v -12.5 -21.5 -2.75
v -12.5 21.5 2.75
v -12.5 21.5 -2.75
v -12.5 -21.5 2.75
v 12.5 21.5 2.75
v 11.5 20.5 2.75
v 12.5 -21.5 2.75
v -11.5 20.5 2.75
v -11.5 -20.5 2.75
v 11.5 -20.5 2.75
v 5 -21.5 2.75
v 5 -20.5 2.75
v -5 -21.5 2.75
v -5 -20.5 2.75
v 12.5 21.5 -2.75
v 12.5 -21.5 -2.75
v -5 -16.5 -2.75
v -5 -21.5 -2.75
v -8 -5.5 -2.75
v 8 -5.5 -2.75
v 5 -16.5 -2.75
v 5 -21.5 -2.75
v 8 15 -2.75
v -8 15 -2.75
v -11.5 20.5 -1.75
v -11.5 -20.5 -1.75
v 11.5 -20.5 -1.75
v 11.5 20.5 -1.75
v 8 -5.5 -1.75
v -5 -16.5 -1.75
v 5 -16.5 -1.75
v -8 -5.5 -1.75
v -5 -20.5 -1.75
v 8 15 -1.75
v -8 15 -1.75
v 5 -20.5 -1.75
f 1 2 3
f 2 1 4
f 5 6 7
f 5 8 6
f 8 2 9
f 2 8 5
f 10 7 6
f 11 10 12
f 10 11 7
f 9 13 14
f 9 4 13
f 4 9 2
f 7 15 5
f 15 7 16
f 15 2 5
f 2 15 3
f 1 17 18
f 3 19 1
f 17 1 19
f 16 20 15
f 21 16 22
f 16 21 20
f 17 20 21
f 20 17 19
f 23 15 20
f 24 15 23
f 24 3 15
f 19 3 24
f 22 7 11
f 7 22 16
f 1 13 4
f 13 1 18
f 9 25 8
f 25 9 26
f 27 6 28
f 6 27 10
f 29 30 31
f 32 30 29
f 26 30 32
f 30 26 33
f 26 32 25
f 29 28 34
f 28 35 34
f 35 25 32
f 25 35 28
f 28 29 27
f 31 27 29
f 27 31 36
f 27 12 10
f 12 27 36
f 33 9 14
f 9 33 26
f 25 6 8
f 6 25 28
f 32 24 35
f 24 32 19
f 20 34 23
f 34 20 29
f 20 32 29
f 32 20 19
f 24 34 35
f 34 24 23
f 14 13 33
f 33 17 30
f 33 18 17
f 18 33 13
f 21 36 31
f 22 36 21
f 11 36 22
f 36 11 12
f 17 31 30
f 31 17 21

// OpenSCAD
difference(){
  cube([25, 43, 5.5], center = true);
  translate([0, 0, 0.5])cube([23, 41, 4.5], center = true);
  translate([0, 4.75, -2.25])cube([16, 20.5, 1], center = true); // Fenster Sensor
  translate([0, -19, 0])cube([10, 5, 5.5], center = true);// Pins
}
